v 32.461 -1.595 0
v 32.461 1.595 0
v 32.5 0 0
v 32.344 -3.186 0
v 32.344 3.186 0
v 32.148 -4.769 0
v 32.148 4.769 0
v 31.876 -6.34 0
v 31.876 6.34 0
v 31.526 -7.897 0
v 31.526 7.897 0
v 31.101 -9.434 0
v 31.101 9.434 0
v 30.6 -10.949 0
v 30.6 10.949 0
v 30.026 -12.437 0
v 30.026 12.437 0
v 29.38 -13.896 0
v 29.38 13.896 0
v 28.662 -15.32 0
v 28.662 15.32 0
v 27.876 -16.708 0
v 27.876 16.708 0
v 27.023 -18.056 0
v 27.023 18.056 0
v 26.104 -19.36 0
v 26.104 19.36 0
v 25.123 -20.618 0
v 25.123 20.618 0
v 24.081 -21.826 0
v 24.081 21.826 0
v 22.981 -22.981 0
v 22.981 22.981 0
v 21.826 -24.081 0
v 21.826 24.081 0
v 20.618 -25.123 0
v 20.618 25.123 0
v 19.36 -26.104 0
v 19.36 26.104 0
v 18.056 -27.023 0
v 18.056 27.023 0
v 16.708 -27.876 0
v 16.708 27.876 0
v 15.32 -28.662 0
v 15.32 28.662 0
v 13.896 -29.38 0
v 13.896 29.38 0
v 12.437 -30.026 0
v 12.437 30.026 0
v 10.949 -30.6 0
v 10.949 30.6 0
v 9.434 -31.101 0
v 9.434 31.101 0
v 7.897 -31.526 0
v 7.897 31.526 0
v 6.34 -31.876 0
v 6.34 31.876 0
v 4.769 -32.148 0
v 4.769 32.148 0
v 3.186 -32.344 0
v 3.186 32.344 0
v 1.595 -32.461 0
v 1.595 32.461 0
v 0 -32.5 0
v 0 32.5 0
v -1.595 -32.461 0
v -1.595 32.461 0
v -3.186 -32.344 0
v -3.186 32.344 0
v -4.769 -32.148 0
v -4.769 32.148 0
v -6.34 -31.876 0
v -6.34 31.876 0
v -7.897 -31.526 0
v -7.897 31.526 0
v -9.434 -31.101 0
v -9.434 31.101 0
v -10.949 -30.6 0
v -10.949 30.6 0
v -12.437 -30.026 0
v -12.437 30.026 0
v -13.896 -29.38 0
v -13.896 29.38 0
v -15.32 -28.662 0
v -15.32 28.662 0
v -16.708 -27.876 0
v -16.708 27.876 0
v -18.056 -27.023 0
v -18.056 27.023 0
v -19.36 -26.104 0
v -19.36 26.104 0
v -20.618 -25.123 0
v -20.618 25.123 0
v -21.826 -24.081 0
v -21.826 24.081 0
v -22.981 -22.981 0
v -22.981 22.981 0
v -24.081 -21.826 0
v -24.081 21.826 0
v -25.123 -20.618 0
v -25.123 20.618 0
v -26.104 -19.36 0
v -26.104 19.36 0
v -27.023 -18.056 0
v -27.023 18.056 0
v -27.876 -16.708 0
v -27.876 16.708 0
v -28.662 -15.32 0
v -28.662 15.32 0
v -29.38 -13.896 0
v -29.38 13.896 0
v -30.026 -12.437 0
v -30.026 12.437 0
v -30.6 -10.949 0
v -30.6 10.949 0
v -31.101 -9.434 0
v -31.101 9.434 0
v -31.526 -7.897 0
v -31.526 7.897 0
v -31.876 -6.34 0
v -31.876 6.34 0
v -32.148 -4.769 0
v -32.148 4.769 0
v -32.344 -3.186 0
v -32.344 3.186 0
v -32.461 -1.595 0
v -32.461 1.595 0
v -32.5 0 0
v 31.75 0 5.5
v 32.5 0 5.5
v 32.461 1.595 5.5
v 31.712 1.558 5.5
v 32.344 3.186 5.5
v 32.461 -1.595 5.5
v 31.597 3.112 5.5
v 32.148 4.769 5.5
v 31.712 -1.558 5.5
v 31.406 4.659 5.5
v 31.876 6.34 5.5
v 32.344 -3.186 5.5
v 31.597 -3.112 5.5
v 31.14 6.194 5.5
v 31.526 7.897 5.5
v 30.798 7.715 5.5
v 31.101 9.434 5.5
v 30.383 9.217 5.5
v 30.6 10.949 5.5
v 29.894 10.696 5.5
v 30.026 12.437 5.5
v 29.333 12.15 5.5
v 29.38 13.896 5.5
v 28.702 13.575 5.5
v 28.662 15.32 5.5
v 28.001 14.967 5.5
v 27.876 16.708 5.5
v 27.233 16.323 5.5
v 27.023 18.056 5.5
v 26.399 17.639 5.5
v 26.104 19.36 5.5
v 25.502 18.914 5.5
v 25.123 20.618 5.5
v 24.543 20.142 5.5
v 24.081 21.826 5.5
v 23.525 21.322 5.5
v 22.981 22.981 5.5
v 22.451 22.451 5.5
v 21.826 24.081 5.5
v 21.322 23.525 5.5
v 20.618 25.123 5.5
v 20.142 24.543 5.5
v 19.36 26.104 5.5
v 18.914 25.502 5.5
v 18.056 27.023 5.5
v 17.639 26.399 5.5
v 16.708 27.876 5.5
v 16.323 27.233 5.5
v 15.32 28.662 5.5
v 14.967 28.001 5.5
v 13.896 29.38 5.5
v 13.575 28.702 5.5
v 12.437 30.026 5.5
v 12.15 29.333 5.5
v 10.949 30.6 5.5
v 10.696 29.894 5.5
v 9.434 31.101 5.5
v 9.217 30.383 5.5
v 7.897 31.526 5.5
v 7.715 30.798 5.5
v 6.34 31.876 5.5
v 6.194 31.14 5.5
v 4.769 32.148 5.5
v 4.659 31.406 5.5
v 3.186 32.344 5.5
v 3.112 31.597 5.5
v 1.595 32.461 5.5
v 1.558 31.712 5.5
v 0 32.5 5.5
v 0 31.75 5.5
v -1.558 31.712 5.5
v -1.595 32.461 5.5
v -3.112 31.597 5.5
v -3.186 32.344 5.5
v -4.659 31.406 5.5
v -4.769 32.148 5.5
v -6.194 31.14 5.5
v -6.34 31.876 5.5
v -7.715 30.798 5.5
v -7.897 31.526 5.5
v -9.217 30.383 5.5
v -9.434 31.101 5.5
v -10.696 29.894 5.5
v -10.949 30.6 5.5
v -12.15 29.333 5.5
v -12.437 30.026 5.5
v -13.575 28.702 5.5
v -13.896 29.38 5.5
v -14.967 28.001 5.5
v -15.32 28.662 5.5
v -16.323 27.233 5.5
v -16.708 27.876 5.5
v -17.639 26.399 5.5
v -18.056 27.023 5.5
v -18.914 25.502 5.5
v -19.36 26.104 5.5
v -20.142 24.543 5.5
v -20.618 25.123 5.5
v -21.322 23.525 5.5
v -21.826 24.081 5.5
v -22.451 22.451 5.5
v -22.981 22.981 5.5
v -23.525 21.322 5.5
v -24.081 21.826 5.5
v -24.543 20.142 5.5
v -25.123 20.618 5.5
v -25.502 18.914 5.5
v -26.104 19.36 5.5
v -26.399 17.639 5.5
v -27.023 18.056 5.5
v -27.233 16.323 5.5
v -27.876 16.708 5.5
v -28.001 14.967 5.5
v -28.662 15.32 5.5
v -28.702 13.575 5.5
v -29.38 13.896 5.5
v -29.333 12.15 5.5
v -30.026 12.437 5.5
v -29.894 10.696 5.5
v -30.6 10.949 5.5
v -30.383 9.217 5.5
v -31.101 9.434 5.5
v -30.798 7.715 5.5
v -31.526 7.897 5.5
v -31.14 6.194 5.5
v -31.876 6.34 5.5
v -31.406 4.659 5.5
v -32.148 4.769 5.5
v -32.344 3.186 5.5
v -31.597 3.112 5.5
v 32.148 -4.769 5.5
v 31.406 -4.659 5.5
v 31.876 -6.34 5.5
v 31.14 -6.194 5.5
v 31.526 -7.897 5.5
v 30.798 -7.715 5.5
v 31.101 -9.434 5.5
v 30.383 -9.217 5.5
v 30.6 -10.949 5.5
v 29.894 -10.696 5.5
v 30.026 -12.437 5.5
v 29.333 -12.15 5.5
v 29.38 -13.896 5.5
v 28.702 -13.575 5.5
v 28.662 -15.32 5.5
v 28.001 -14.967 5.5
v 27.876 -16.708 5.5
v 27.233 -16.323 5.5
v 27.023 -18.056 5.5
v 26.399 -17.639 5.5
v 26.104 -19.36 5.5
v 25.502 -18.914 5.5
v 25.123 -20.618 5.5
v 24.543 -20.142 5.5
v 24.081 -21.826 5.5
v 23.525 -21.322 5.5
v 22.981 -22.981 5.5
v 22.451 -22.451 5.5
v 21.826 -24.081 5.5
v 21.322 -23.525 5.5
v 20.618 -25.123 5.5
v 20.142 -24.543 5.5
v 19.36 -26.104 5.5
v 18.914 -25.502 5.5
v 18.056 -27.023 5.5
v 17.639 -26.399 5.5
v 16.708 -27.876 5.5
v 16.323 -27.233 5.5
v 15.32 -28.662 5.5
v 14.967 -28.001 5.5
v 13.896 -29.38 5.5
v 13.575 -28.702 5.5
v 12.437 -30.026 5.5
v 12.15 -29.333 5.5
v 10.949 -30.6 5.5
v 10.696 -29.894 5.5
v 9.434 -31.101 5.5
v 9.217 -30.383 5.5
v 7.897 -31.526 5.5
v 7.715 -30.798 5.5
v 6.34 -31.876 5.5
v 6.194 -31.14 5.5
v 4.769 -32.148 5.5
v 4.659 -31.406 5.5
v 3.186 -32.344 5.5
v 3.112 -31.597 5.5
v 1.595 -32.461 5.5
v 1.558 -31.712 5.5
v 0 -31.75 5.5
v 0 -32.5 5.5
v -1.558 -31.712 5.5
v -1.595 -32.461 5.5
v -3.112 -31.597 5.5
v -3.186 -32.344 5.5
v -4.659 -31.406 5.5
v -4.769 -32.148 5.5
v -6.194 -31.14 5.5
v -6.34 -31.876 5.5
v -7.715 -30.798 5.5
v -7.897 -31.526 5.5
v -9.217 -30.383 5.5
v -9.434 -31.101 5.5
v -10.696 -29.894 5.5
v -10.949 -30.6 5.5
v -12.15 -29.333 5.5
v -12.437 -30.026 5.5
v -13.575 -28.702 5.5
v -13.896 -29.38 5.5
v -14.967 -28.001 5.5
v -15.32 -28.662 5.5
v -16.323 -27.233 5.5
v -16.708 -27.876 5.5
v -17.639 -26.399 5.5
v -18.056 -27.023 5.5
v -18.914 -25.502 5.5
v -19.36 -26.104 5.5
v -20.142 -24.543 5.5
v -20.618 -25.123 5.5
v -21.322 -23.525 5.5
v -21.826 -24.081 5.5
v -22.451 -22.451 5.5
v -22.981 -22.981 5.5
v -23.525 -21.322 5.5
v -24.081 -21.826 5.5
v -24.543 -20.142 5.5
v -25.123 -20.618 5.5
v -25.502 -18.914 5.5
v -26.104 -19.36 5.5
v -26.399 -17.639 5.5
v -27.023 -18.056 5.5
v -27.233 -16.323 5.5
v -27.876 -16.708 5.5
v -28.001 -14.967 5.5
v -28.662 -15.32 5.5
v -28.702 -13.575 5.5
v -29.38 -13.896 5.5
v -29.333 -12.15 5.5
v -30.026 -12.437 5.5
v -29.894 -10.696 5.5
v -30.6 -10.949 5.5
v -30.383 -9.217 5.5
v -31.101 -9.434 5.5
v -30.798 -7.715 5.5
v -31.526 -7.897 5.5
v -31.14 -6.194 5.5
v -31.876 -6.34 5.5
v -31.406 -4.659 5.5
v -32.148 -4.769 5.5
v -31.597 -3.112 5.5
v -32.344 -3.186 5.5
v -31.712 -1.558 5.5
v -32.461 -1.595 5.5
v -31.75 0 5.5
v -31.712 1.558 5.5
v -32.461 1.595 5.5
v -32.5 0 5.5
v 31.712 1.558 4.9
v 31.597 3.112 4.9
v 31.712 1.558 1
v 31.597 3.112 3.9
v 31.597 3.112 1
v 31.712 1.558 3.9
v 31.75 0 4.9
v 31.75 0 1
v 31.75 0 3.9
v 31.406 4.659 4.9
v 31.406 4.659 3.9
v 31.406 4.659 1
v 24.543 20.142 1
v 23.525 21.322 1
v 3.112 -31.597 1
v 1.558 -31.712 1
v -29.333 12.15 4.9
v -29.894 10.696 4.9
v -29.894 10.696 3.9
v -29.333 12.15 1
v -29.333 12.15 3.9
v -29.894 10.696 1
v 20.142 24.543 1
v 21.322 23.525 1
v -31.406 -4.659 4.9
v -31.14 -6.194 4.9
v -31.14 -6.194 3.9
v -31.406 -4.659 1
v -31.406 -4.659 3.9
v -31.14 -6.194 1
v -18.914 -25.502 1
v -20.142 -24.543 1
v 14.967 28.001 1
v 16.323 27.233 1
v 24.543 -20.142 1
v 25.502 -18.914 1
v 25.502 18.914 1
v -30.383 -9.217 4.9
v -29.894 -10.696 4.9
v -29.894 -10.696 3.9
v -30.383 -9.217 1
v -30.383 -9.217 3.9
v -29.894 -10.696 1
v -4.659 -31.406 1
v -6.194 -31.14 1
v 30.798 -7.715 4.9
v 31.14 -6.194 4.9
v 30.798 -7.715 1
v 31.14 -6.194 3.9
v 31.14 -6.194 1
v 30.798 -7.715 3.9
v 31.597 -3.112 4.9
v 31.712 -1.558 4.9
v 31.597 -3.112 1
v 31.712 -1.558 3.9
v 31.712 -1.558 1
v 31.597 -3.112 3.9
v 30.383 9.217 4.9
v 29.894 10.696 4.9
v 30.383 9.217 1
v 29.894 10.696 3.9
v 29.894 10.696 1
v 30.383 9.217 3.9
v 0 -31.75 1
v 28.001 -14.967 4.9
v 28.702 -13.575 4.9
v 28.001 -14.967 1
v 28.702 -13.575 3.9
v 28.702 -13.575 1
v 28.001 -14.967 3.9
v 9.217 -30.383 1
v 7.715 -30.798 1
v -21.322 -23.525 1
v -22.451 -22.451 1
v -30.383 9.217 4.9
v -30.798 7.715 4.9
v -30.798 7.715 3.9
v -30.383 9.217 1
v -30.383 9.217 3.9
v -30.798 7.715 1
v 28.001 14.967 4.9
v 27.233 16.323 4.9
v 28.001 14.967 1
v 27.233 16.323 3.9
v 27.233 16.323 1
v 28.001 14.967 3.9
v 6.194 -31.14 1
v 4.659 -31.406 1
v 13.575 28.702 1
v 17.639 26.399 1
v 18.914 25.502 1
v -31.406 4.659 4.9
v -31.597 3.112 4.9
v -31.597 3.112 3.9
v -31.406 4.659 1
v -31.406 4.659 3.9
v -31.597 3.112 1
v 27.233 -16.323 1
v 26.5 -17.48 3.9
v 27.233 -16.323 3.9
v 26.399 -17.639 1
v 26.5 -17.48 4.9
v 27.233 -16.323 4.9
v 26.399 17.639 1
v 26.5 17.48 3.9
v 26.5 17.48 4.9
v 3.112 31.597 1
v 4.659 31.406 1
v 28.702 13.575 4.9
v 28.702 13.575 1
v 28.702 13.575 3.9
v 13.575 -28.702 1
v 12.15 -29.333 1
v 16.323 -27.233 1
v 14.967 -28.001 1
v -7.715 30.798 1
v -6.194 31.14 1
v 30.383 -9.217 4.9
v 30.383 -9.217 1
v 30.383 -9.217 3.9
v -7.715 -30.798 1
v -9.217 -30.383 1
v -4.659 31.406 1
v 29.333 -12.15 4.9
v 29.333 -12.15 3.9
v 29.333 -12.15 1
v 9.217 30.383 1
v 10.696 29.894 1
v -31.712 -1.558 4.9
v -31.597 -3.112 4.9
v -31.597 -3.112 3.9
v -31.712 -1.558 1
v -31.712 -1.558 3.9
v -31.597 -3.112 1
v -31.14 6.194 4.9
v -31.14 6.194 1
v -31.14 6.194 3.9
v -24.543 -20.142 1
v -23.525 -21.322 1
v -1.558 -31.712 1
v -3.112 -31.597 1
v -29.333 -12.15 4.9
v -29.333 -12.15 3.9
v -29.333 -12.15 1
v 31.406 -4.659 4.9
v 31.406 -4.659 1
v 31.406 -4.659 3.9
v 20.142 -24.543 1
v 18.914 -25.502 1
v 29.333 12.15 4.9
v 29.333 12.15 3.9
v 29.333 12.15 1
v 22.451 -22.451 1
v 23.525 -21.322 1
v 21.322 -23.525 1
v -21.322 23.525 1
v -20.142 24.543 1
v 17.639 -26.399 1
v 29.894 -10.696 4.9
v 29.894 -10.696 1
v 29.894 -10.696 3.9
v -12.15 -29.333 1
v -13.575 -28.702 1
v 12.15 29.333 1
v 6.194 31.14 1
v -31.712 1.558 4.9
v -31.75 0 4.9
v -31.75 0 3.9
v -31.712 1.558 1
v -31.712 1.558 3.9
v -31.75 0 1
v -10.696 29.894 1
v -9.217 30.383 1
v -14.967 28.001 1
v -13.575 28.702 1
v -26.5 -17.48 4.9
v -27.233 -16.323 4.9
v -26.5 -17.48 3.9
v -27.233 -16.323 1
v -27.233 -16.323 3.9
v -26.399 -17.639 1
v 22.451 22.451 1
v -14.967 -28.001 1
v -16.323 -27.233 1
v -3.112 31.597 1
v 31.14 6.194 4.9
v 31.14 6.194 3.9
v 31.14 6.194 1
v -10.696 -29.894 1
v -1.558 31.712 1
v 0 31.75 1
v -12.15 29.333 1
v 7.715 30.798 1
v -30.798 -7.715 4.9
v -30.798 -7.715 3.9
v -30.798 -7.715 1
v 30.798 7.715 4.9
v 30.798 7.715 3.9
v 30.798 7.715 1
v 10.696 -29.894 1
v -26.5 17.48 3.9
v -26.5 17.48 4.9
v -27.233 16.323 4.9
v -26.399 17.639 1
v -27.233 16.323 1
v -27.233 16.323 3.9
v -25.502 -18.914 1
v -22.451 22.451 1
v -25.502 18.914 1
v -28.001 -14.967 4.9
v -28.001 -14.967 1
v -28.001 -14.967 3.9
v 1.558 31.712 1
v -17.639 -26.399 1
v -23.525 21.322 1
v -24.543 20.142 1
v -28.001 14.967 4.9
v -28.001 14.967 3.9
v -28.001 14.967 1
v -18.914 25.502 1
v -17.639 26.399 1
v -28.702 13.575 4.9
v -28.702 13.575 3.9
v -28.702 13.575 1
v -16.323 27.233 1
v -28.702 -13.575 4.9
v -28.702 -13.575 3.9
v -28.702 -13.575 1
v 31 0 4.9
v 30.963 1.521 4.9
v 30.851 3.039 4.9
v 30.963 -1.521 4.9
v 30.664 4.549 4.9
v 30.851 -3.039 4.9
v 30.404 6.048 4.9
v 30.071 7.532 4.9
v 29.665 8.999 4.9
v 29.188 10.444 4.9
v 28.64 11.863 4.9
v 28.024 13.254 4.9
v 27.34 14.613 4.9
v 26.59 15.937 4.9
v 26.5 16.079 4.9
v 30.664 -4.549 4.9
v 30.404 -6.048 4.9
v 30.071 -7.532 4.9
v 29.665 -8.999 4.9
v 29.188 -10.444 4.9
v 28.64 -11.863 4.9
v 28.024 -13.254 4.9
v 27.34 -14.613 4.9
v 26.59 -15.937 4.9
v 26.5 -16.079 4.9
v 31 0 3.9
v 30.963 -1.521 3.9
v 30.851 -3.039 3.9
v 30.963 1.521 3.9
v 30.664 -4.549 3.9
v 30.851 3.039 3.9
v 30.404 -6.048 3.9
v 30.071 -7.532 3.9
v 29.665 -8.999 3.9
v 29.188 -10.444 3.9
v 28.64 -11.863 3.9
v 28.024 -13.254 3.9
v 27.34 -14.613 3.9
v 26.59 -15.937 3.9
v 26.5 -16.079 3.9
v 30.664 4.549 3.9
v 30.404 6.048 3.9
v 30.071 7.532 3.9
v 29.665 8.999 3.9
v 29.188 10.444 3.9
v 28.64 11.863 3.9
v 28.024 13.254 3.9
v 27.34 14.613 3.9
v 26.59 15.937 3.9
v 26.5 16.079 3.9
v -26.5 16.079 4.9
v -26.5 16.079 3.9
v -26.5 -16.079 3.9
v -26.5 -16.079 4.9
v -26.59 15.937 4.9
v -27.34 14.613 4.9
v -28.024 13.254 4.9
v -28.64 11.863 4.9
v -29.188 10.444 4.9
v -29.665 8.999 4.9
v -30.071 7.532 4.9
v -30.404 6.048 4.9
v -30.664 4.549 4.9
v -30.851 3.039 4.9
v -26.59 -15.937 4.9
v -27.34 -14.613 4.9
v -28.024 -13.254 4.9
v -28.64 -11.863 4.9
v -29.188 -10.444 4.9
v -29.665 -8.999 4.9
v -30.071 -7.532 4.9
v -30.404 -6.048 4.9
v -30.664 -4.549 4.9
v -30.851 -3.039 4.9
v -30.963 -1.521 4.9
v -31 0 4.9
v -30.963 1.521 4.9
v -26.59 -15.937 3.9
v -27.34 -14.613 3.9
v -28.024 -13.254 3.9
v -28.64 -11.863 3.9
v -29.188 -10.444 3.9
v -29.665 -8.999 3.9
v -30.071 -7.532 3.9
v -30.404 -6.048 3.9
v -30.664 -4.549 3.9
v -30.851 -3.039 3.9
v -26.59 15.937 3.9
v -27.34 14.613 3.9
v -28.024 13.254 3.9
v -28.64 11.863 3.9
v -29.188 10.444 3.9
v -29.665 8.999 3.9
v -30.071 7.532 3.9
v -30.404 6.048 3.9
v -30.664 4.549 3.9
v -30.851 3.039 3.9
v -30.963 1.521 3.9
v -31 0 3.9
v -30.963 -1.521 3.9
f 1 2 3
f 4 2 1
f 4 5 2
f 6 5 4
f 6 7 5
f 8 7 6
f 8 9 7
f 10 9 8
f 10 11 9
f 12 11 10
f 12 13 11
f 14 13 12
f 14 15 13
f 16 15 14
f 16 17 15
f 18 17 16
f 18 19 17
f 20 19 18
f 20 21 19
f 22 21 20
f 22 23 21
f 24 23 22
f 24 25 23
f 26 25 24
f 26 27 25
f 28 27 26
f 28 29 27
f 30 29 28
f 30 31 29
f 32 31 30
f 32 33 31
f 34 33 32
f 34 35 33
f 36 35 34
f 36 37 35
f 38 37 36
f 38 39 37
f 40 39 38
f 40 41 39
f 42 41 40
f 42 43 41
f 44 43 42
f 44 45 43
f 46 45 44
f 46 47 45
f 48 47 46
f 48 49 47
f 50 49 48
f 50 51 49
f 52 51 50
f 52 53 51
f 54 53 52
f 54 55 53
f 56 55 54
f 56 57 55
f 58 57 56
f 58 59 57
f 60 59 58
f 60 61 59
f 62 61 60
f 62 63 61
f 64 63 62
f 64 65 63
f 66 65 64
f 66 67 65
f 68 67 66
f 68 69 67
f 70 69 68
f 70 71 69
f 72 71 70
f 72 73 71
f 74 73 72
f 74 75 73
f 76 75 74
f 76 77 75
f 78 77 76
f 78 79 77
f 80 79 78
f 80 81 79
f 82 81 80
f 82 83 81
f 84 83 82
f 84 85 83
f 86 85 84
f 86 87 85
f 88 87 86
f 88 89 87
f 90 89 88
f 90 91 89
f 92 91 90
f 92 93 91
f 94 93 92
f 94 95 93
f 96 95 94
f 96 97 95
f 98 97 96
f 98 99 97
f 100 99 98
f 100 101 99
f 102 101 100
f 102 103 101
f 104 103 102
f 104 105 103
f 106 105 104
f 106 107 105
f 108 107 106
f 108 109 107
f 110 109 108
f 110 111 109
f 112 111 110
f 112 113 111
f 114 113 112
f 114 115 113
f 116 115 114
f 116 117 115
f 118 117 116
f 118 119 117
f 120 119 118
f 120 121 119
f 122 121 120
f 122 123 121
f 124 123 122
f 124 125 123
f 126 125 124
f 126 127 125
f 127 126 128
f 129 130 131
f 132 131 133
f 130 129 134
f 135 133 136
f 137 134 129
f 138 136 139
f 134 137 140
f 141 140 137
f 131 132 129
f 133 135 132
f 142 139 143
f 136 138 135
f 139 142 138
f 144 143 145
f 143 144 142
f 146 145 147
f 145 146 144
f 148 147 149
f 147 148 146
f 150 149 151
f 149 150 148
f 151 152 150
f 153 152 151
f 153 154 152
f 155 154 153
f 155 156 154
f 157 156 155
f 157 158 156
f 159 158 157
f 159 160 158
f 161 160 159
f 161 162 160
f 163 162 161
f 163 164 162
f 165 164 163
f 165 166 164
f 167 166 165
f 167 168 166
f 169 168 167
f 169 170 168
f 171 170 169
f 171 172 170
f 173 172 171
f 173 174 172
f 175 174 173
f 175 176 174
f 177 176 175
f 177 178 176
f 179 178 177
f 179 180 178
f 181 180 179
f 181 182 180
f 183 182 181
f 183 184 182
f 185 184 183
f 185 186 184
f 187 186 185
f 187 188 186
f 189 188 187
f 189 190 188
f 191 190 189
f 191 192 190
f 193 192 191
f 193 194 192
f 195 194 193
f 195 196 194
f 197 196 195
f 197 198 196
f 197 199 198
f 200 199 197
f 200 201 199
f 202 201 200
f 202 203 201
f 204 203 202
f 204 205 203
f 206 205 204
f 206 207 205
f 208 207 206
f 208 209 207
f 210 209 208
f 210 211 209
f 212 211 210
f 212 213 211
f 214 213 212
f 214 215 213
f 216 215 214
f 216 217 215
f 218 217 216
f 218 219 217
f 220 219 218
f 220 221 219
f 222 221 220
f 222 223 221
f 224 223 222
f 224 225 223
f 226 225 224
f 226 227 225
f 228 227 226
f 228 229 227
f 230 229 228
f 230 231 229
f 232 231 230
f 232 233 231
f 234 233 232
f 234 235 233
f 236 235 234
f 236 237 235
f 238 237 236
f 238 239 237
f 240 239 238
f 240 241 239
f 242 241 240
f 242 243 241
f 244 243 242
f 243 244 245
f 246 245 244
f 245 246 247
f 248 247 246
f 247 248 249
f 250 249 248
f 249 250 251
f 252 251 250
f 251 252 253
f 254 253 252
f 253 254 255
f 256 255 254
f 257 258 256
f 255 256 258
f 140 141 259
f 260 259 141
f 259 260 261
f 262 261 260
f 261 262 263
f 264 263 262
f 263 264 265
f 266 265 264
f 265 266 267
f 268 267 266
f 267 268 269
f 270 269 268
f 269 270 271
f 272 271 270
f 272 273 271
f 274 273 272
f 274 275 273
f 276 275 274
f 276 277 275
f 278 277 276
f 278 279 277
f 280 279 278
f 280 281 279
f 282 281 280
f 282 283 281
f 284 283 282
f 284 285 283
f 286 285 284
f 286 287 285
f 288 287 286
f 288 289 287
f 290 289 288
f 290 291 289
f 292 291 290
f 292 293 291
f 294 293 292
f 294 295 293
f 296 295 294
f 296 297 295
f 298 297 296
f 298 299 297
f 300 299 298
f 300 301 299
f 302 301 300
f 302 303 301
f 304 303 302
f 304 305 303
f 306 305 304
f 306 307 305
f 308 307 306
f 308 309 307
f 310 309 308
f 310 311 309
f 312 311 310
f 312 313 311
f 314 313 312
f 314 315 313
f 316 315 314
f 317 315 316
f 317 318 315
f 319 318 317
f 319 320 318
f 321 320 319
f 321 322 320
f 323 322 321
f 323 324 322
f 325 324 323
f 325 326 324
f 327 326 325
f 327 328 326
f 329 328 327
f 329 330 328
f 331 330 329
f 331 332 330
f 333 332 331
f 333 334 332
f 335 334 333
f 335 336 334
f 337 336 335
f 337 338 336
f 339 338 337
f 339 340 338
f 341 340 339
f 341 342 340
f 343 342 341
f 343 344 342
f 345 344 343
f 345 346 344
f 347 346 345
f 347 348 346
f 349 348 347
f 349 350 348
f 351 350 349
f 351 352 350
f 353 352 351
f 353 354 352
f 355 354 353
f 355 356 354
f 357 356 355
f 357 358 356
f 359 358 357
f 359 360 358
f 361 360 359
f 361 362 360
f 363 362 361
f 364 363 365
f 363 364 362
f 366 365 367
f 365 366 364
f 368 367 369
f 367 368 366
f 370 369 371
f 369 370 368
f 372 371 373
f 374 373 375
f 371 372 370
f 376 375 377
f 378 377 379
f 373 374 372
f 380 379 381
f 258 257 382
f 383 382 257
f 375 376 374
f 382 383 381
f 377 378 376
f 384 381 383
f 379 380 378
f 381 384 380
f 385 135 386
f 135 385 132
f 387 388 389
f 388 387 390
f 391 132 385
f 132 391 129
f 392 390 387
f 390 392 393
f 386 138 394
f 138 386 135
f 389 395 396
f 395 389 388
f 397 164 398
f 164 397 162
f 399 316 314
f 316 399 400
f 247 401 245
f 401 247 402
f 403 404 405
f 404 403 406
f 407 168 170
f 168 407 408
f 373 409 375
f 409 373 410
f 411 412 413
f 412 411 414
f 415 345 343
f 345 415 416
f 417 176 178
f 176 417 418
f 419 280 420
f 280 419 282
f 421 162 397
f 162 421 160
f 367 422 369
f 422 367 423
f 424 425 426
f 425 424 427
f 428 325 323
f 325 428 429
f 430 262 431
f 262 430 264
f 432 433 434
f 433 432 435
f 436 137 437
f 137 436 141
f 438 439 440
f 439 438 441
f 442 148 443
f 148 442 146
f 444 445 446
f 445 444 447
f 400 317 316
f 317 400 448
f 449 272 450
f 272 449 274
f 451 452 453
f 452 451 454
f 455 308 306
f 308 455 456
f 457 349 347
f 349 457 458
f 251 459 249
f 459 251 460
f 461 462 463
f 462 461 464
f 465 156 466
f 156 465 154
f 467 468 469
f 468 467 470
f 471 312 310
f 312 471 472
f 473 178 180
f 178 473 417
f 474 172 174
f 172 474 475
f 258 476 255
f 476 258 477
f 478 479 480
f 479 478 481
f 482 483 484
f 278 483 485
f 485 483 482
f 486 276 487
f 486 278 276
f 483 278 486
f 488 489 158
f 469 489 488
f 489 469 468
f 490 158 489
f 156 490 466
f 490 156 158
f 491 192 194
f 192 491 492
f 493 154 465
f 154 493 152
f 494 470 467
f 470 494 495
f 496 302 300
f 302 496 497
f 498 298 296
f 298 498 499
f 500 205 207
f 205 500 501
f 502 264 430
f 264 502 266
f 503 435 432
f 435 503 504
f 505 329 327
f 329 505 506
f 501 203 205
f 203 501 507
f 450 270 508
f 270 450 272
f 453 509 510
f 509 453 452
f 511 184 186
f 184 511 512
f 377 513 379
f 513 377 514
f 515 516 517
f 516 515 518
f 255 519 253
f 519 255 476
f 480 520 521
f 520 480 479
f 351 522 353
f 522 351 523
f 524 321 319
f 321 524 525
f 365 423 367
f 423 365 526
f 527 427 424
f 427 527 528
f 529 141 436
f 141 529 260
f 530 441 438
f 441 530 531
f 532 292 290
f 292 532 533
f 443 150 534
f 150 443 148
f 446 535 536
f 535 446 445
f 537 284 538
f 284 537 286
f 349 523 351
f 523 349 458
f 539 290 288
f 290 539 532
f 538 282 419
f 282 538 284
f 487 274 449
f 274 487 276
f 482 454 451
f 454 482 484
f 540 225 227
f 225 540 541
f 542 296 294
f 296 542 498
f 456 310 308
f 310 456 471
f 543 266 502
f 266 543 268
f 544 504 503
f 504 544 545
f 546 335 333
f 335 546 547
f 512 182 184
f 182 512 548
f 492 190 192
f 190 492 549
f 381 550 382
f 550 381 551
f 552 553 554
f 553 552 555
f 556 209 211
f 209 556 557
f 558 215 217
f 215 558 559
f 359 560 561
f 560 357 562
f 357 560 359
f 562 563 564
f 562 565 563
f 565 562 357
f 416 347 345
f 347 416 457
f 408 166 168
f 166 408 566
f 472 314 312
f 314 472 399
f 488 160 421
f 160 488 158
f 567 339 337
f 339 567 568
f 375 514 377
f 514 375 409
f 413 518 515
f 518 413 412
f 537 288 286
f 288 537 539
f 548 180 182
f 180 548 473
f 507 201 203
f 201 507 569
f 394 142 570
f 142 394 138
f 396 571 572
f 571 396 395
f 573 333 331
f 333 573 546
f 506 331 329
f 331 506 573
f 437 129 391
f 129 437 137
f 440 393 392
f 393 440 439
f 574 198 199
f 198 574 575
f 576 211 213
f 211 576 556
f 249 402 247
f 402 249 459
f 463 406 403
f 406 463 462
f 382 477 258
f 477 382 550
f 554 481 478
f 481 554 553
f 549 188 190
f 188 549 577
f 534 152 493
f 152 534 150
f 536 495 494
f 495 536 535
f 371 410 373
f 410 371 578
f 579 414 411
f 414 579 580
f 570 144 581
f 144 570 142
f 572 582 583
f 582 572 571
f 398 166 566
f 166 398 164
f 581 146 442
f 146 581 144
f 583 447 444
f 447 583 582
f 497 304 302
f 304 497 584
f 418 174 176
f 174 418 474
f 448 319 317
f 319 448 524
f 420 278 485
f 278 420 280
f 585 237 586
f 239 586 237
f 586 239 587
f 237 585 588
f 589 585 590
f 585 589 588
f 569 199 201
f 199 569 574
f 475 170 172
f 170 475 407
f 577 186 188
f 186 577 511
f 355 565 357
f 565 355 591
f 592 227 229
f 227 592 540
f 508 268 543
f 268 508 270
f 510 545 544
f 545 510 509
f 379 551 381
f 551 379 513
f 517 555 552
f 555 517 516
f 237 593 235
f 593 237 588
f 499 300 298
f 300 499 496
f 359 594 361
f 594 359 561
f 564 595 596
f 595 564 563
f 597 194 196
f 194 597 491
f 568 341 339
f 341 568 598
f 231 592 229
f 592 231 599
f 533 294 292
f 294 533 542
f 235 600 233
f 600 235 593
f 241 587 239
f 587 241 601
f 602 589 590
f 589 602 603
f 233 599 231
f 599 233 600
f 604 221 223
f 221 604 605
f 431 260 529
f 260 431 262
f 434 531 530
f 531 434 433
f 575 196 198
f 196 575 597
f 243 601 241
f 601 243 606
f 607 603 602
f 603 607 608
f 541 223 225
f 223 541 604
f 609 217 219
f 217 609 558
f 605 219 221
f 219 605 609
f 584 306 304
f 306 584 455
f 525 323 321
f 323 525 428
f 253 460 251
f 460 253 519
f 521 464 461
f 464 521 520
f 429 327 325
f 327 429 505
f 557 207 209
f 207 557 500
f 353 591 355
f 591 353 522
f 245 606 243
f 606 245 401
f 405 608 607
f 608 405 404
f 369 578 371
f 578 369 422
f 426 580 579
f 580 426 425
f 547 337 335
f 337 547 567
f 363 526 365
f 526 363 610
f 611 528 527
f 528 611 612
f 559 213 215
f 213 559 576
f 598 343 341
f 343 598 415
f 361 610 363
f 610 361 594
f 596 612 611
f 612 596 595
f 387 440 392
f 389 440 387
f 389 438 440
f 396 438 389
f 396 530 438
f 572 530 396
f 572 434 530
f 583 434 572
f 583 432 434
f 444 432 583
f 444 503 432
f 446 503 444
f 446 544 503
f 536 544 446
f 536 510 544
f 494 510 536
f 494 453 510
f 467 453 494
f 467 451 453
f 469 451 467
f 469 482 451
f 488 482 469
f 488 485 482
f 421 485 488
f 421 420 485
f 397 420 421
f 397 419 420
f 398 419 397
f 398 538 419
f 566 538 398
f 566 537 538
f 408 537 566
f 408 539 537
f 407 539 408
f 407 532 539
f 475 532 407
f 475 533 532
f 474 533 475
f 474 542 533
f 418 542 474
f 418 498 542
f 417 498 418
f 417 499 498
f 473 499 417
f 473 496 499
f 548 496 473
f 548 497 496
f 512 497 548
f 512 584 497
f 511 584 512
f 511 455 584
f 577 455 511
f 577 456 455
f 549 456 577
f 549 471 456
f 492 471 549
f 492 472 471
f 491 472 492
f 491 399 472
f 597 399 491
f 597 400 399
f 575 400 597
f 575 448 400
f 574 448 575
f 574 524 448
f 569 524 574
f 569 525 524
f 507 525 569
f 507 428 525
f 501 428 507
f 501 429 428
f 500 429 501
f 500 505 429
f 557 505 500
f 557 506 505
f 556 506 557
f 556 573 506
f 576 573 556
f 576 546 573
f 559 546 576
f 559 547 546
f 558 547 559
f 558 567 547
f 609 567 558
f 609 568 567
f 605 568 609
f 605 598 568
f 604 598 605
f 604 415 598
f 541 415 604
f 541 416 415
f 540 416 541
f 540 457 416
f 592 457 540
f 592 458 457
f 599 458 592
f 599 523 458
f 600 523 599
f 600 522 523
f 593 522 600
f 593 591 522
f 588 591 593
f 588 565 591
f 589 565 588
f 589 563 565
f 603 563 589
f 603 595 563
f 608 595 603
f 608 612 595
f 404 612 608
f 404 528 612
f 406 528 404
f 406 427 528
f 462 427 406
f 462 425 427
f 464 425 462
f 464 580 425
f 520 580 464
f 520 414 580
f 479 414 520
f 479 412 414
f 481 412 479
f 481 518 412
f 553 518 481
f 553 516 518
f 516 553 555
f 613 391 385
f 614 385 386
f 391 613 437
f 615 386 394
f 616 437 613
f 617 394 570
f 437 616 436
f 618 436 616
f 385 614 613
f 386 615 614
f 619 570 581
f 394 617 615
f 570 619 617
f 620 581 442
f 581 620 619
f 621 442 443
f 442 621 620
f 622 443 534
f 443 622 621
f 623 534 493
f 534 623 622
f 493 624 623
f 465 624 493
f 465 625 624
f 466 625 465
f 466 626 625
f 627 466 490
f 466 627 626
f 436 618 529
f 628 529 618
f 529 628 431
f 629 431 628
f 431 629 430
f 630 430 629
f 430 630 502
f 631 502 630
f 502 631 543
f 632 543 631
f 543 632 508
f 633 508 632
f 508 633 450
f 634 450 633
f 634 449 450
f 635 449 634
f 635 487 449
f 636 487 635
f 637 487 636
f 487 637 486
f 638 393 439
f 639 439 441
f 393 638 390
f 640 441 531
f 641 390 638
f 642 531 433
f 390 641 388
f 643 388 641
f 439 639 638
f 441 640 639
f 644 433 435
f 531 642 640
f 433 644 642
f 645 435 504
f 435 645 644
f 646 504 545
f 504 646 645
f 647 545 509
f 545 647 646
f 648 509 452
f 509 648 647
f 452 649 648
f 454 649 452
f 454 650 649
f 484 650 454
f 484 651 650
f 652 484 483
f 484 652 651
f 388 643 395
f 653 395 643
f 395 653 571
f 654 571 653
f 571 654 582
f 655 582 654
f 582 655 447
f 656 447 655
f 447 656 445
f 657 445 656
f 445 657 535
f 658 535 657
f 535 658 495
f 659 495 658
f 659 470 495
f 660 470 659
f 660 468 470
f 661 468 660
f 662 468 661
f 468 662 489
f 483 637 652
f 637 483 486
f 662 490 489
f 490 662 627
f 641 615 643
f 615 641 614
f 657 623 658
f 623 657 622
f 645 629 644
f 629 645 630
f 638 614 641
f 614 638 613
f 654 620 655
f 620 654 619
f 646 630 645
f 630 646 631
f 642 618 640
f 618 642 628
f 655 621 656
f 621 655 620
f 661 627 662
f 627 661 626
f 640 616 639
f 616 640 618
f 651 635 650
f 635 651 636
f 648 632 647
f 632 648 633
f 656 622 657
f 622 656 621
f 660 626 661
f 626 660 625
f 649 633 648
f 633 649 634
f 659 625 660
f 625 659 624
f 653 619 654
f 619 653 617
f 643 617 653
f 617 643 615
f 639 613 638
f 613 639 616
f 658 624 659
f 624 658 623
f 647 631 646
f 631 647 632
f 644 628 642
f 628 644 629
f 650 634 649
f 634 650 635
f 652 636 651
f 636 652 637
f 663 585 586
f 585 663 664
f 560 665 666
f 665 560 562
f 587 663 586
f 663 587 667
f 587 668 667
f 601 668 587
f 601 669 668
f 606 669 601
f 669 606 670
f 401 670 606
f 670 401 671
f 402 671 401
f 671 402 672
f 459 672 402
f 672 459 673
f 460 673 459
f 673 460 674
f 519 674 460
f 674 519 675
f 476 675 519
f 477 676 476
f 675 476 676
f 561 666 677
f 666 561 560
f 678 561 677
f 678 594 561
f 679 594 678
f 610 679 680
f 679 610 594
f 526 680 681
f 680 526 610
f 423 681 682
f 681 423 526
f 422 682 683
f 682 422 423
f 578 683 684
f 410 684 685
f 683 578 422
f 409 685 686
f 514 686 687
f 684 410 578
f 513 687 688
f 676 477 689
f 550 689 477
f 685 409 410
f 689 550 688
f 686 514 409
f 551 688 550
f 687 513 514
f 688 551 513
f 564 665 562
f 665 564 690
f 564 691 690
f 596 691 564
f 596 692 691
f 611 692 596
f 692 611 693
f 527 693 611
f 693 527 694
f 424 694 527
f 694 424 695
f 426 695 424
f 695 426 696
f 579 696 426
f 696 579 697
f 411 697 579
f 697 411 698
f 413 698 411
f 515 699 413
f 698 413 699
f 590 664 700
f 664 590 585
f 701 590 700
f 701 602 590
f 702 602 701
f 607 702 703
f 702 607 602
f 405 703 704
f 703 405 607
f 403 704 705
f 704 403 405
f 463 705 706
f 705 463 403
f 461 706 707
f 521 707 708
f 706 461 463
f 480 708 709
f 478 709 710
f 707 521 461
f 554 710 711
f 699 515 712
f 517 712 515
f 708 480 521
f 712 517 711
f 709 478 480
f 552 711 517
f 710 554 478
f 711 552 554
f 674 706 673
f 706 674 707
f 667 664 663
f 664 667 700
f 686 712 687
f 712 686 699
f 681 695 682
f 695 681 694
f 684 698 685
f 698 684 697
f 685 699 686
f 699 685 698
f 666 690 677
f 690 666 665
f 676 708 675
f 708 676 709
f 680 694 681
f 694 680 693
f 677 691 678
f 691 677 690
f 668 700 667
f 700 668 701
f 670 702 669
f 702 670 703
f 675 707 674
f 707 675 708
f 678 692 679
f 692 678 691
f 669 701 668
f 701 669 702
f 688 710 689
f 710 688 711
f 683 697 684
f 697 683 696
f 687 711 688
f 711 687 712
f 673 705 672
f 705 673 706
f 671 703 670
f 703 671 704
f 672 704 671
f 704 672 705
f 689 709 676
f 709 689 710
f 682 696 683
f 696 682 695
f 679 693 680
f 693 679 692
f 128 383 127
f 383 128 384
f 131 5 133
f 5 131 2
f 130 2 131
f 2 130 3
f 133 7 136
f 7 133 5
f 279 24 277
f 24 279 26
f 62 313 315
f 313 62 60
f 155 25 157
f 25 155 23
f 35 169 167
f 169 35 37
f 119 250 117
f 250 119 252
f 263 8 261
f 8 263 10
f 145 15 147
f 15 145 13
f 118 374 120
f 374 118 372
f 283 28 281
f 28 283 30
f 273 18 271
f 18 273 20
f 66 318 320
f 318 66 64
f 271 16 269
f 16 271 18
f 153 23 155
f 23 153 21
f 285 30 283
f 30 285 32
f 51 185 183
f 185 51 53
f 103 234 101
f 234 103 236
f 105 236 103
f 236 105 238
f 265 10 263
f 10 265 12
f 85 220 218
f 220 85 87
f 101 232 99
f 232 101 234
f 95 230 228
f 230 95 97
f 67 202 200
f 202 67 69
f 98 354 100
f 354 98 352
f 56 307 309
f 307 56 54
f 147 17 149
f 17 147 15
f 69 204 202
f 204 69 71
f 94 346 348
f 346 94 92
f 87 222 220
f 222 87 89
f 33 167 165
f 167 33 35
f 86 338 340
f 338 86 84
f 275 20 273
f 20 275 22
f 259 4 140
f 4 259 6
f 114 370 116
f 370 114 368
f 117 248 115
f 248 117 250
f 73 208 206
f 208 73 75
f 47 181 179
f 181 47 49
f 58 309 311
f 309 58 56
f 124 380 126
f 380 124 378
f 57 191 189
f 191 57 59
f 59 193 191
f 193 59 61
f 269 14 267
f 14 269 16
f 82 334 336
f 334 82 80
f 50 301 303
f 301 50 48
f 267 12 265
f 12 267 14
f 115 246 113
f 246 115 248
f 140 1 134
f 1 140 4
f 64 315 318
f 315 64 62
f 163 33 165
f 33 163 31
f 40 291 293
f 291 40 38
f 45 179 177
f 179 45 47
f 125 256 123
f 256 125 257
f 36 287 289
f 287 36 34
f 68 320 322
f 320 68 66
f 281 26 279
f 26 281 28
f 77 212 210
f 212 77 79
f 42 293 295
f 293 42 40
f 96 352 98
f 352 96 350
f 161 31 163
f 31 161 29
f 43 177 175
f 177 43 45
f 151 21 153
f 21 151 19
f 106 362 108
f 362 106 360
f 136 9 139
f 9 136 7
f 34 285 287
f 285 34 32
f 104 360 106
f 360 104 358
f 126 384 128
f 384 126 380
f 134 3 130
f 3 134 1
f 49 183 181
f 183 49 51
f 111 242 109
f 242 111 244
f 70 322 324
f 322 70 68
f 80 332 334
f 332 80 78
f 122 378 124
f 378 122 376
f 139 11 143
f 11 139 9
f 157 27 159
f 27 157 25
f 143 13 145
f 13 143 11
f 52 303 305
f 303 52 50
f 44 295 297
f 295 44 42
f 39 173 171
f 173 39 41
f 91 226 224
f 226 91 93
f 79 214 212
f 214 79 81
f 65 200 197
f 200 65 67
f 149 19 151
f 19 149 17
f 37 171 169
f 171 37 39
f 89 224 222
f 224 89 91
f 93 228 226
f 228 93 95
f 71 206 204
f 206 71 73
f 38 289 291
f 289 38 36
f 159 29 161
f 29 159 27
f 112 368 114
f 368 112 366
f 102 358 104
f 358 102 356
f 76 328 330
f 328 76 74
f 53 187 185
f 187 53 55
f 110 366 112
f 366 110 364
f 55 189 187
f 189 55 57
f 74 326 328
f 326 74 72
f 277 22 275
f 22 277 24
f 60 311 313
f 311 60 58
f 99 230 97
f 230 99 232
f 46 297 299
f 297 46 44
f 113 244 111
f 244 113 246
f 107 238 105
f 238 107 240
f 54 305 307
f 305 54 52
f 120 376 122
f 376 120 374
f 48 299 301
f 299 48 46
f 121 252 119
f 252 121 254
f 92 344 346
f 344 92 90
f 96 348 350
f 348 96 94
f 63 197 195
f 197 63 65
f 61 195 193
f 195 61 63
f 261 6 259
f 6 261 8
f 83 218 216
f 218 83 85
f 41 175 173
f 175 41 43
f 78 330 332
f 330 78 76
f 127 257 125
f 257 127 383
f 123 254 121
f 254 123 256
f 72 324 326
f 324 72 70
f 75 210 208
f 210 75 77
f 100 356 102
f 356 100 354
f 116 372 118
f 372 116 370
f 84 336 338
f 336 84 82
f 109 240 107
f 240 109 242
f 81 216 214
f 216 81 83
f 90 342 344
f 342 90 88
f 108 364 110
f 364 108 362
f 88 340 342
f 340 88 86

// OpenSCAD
$fn=128;

//Wall strengh of sides
thickness=1;
//Inner diameter
idiam=63;   
//Height
lidh=5.5;
//Give in Friction fit
looseness=5;

loose=looseness/10; // ie looseness = 5 loose = 0.5mm
difference(){
    lid();
    //to cut off excess that sticks out of the lid
    difference(){
        cylinder(h=lidh,r=idiam/2+10);
        cylinder(h=lidh,r=idiam/2+1);
     }
}
//Rim outside 
module tube(d,h,th) {  // d= outside diam
rad=d/2;
difference() {
	cylinder(h=h,r=rad);
	cylinder(h=h,r=rad-th);
	}
}


module lid(){
union() {
	tube(idiam+thickness*2+loose,lidh,thickness); // sides
	tube(idiam+thickness*2+loose,thickness,idiam+thickness*2+loose); // base
	
}
//Screw-Lip
//Pin that screws sticks 1mm inwards 
//and is 1mm thick
//Lenghth of the lip is appr. 36mm
difference(){
    translate([idiam/2-1, 0, lidh-1.1])
    cube(size = [8, 42, 1], center = true);
    
    rotate([0, 0, 90])
    translate([0, 0, 2])
    cylinder(h = lidh+2.9, r=(idiam/2)-0.5, center = true, $fn=128);
}
//Mirrowed Screw-Lip
difference() {
    translate([-idiam/2+1, 0, lidh-1.1])
    cube(size = [8, 42, 1], center = true);
    
    rotate([0, 0, 90])
    translate([0, 0, 2])
    cylinder(h = lidh+2.9, r=(idiam/2)-0.5, center = true, $fn=128);
}

}
